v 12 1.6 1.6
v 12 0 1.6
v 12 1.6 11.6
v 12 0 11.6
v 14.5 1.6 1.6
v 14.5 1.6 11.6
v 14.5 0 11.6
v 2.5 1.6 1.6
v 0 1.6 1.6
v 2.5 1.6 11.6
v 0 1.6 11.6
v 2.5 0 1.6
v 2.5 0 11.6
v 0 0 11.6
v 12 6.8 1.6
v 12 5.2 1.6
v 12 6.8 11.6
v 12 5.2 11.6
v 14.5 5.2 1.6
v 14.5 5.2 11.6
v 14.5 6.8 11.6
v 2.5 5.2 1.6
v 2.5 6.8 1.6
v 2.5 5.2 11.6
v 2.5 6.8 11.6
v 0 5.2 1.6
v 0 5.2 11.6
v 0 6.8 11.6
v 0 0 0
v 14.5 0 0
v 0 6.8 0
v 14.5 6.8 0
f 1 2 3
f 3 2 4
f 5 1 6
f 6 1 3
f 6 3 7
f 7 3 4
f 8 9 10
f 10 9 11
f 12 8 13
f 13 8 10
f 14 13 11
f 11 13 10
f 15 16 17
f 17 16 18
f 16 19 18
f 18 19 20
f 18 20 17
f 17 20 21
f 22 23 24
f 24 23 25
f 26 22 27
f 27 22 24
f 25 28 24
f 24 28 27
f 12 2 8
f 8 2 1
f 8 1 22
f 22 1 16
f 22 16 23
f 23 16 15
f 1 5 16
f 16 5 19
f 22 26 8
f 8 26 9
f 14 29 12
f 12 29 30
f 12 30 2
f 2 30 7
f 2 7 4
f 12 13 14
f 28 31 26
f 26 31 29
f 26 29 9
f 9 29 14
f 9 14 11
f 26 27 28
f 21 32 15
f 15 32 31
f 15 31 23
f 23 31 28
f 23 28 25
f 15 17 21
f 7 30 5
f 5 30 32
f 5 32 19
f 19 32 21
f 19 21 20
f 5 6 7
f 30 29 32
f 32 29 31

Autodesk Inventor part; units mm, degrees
ref_plane "YZ Plane" through (0, 0, 0) normal (1, 0, 0) x (0, 1, 0)
ref_plane "XZ Plane" through (0, 0, 0) normal (0, 1, 0) x (-1, 0, 0)
ref_plane "XY Plane" through (0, 0, 0) normal (0, 0, 1) x (1, 0, 0)
sketch "Sketch1" plane through (0, 0, 0) normal (0, 0, 1) x (1, 0, 0)
  line L0 (0, 0) -> (14.5, 0)
  line L1 (14.5, 0) -> (14.5, 6.8)
  line L2 (14.5, 6.8) -> (0, 6.8)
  line L3 (0, 6.8) -> (0, 0)
  dimension "d0" = 14.5
  dimension "d1" = 6.8
extrude "Extrusion1" add sketch "Sketch1" along normal blind 1.6
sketch "Sketch2" plane through (0, 0, 1.6) normal (0, 0, 1) x (1, 0, 0)
  line L0 (0, 6.8) -> (0, 0) projected
  line L1 (0, 6.8) -> (2.5, 6.8)
  line L2 (2.5, 6.8) -> (2.5, 5.2)
  line L3 (2.5, 5.2) -> (0, 5.2)
  line L4 (0, 5.2) -> (0, 6.8)
  line L5 (0, 0) -> (2.5, 0)
  line L6 (2.5, 0) -> (2.5, 1.6)
  line L7 (2.5, 1.6) -> (0, 1.6)
  line L8 (0, 1.6) -> (0, 0)
  line L9 (0, 0) -> (14.5, 0) projected
  line L10 (14.5, 0) -> (12, 0)
  line L11 (12, 0) -> (12, 1.6)
  line L12 (12, 1.6) -> (14.5, 1.6)
  line L13 (14.5, 1.6) -> (14.5, 0)
  line L14 (14.5, 0) -> (14.5, 6.8) projected
  line L15 (14.5, 6.8) -> (12, 6.8)
  line L16 (12, 6.8) -> (12, 5.2)
  line L17 (12, 5.2) -> (14.5, 5.2)
  line L18 (14.5, 5.2) -> (14.5, 6.8)
  dimension "d4" = 2.5
  dimension "d5" = 1.6
  dimension "d6" = 2.5
  dimension "d7" = 1.6
  dimension "d8" = 2.5
  dimension "d9" = 1.6
  dimension "d10" = 1.6
extrude "Extrusion2" add sketch "Sketch2" along normal blind 10
properties part number "ButtonLock"
